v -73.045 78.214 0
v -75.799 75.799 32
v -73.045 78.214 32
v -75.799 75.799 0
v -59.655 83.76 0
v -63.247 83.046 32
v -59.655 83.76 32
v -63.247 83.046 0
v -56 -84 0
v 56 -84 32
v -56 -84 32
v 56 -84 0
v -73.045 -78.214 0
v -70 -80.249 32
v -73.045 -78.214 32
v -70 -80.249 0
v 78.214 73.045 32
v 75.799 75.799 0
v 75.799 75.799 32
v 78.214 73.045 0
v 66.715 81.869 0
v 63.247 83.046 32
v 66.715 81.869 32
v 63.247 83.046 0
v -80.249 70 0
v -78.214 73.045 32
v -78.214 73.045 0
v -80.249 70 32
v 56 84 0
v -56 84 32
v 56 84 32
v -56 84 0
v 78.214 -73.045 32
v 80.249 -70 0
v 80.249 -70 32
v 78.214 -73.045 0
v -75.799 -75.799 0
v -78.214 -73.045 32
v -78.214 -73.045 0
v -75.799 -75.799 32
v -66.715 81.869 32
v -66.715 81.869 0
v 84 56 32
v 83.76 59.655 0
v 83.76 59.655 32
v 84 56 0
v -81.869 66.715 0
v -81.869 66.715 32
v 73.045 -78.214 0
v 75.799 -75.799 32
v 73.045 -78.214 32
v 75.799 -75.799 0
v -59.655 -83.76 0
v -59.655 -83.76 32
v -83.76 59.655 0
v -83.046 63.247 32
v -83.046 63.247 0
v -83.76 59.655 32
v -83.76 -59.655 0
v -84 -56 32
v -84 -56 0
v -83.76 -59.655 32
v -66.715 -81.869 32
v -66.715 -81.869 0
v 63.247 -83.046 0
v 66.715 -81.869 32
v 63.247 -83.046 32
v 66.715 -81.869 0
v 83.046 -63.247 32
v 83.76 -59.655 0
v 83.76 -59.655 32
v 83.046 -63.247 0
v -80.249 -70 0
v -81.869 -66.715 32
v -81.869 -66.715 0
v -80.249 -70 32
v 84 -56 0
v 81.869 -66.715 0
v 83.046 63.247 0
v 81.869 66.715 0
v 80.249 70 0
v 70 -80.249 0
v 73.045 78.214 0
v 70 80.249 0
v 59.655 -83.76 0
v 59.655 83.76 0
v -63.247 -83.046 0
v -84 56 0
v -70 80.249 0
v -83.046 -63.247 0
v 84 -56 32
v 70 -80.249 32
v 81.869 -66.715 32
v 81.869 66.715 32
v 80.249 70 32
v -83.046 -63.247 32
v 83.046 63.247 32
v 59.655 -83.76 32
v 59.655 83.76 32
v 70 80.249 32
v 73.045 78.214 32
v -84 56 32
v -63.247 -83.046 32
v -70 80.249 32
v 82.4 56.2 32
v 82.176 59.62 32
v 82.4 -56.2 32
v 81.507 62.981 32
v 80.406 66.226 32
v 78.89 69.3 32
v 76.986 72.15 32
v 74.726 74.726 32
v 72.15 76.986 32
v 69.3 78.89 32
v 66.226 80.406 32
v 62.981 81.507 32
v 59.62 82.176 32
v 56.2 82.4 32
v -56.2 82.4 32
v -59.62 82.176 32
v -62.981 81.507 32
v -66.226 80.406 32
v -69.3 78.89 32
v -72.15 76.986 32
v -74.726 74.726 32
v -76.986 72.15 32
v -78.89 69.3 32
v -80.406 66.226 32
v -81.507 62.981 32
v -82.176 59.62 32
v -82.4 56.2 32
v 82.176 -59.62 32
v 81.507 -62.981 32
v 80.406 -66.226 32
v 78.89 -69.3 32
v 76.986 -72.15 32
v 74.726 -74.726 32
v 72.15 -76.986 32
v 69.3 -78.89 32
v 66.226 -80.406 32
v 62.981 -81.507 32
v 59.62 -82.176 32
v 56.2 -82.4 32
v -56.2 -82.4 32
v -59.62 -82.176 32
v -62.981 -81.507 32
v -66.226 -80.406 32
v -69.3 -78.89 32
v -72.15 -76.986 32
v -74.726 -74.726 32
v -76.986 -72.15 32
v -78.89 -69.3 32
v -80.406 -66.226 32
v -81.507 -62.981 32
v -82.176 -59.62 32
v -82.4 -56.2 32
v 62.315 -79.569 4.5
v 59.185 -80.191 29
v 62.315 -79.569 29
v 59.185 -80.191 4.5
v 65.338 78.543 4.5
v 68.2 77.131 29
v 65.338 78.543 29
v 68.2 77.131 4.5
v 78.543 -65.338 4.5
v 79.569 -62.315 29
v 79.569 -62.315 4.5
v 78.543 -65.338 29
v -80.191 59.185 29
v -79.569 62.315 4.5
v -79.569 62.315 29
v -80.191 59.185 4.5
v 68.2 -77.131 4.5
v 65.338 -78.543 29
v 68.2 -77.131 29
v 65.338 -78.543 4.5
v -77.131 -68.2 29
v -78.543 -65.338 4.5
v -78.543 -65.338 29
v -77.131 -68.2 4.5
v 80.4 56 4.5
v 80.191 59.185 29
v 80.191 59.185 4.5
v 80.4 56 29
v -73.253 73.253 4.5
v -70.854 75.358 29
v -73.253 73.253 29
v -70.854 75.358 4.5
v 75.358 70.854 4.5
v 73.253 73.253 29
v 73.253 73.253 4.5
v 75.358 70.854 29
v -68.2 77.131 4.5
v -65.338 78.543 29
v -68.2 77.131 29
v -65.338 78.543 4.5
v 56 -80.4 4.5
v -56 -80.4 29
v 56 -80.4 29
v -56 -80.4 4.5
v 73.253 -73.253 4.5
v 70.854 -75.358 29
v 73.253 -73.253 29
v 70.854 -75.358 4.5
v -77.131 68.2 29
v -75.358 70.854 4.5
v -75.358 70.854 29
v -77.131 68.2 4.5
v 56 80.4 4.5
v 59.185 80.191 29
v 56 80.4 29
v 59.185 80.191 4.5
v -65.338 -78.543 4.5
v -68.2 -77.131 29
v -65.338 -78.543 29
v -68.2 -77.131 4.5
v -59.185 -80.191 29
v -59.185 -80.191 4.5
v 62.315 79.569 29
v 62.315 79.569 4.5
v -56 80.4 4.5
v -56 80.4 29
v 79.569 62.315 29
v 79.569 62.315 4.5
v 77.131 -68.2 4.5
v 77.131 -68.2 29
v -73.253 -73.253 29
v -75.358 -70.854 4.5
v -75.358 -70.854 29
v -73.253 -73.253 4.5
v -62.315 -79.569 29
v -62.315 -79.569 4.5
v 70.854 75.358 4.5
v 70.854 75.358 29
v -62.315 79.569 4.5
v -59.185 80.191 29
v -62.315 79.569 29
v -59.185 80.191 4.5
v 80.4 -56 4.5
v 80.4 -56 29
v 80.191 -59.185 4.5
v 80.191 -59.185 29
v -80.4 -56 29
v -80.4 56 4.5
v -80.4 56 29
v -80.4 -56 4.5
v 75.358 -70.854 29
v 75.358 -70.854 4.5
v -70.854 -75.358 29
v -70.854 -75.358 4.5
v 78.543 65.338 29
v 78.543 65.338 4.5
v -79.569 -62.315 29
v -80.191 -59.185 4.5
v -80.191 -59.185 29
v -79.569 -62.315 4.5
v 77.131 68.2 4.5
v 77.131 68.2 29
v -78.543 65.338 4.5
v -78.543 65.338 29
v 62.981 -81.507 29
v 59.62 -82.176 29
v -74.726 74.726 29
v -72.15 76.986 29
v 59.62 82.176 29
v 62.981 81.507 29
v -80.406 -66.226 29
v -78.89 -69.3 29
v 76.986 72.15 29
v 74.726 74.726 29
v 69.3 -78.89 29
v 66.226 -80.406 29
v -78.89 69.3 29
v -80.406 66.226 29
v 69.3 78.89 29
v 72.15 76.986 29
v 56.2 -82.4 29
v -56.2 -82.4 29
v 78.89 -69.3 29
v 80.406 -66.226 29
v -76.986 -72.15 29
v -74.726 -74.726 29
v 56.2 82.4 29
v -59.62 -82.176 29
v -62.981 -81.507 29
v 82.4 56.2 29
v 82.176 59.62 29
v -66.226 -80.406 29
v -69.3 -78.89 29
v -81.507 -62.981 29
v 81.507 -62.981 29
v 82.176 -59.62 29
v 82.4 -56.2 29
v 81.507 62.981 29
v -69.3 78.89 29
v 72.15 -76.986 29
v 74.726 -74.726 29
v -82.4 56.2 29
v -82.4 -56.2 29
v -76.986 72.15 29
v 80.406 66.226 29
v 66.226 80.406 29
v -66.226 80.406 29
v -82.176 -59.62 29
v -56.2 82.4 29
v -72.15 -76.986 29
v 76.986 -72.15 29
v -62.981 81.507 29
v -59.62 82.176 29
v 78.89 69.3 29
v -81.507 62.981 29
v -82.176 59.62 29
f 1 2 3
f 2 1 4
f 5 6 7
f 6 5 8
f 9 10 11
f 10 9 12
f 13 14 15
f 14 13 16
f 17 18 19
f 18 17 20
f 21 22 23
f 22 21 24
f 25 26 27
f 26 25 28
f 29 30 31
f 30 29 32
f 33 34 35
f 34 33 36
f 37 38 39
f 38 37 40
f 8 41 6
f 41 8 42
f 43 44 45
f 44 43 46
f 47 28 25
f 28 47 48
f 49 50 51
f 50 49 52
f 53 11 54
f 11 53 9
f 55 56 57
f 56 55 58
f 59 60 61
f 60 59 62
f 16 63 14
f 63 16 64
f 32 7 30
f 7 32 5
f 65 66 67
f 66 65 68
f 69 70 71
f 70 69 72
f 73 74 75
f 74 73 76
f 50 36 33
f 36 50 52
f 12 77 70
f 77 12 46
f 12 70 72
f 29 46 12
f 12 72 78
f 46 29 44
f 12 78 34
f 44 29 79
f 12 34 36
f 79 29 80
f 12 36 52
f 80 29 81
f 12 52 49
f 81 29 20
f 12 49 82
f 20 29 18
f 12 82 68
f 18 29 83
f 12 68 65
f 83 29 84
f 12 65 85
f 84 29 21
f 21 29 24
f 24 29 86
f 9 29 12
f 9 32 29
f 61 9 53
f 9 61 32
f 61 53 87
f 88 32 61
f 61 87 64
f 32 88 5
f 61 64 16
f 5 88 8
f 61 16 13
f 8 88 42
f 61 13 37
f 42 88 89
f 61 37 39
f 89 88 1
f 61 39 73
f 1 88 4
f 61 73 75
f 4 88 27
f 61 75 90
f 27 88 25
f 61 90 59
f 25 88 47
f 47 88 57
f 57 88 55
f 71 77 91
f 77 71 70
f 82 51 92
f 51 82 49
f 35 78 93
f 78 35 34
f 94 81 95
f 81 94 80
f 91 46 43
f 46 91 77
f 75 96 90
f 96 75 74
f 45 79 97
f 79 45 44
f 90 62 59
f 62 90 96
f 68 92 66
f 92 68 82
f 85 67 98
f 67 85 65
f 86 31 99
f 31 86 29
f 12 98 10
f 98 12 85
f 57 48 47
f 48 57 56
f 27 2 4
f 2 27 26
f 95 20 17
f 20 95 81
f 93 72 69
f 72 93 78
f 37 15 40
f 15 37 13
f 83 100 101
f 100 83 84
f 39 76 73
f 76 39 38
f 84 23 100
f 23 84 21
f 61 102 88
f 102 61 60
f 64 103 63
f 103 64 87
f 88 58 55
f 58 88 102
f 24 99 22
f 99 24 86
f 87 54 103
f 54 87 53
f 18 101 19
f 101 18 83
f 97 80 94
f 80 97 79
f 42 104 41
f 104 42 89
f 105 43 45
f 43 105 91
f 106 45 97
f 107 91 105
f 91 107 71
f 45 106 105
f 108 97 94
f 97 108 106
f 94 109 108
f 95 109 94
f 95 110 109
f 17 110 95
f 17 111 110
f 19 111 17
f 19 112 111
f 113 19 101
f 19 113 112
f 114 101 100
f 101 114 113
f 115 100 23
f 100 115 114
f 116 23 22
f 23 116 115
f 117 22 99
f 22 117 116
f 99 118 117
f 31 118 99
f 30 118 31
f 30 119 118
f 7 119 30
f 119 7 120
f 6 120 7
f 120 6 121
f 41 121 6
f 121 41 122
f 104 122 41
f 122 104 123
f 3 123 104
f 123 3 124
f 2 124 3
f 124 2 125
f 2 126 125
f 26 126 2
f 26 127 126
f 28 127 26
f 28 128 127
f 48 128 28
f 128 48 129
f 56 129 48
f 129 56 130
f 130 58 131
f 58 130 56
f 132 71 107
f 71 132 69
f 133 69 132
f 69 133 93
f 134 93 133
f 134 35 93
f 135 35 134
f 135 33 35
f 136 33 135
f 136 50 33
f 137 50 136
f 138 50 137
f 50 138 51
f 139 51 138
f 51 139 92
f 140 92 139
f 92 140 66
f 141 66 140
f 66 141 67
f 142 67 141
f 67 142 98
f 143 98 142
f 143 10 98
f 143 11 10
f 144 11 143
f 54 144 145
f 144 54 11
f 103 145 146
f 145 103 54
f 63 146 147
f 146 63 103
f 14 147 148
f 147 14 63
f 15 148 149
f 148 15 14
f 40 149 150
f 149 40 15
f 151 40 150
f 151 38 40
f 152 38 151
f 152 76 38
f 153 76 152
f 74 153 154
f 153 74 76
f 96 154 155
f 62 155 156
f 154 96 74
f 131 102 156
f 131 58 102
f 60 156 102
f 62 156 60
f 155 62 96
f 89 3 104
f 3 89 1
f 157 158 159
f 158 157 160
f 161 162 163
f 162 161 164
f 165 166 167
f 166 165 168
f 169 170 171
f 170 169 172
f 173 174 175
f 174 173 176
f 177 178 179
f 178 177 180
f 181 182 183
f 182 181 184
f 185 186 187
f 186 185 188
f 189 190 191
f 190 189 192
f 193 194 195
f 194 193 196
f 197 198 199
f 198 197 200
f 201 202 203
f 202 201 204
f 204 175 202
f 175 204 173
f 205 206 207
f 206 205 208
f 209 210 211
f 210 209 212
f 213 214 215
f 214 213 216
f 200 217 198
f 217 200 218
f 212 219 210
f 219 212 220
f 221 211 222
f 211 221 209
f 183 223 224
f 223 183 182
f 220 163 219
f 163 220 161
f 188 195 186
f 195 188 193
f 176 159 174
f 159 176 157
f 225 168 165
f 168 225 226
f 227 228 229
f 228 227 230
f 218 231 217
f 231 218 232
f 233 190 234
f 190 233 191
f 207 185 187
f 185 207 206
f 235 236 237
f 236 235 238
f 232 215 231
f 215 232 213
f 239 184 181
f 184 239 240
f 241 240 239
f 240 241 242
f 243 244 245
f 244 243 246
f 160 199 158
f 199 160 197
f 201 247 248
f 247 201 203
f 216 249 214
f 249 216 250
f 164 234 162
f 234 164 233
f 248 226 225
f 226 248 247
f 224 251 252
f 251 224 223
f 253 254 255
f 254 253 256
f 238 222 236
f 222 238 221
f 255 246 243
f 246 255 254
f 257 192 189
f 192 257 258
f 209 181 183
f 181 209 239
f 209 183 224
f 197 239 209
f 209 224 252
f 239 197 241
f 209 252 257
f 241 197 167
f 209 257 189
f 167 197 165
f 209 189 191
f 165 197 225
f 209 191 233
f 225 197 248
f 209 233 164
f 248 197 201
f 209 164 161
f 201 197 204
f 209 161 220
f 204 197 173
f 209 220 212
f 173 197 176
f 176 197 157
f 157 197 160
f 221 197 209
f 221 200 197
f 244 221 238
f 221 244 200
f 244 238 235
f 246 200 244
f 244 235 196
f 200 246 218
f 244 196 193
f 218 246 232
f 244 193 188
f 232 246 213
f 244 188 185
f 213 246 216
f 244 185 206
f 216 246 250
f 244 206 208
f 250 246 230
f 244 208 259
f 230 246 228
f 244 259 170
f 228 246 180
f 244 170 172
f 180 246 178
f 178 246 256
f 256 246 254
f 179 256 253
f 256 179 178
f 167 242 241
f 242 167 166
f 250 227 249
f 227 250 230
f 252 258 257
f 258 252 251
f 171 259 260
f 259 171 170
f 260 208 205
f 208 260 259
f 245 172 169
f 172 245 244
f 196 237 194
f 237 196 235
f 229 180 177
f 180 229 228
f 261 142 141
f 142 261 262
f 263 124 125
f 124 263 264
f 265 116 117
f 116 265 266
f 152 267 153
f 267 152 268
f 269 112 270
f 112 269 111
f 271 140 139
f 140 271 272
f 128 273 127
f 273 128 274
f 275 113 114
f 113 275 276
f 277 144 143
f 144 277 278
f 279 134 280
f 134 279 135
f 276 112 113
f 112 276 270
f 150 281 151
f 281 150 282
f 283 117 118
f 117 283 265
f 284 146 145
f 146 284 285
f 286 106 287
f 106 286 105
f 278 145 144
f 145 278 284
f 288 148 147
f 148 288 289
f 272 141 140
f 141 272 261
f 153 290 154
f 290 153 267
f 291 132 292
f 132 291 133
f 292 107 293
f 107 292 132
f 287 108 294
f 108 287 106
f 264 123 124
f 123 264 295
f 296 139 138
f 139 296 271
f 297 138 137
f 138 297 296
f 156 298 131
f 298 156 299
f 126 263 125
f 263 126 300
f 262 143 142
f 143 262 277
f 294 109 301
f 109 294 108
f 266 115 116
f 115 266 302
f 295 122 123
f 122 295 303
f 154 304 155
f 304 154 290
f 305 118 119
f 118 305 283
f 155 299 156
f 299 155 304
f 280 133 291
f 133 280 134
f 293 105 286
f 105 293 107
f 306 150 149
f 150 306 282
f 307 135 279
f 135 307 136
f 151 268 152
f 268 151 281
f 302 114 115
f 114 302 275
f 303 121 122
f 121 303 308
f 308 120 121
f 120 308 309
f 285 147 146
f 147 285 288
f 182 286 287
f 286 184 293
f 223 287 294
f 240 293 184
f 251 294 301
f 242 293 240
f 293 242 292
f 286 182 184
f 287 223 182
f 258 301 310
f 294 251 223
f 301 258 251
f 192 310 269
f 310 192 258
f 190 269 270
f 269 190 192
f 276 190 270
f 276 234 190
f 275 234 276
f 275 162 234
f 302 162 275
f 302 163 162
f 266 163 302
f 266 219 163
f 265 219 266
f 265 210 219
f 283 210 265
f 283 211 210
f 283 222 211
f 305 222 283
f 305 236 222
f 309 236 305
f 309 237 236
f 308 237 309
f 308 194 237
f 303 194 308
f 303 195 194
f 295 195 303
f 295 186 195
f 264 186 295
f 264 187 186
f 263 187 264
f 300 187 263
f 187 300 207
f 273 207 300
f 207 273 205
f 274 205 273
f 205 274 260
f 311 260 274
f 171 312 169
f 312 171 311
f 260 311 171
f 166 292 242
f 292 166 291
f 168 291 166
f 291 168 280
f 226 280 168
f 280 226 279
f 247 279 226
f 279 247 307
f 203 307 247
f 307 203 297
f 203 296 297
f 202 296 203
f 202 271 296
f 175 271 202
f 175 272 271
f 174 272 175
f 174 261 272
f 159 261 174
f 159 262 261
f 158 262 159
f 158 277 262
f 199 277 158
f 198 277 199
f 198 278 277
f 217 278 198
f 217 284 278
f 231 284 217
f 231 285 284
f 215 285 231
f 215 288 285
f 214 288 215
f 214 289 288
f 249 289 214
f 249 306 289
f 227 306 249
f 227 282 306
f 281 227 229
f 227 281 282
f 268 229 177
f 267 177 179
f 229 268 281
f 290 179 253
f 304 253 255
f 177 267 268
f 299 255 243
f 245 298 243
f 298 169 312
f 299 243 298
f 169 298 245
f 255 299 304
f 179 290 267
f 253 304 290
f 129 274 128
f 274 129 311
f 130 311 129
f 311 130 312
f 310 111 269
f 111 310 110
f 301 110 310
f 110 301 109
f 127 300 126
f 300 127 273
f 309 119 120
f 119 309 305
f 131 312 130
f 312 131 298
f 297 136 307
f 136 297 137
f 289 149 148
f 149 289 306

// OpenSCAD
// ============================================================================
// Get Me An Alt — Parametric OpenSCAD Module
// Part: PRT-01 — Acoustic Weighted Base Pan & Vibration Ring (weighted-base-pan)
// Function: Anchors the tower and seals the bottom of the HEPA cartridge.
// Target Bounding Box (mm): [168, 168, 32]
// Print Material: PETG | Min Wall: >= 1.6mm | Tolerance: 0.2mm
// ============================================================================
$fn = 48;
part_width = 168;
part_depth = 168;
part_height = 32;
wall_thickness = 3.6;
floor_thickness = 4.5;
corner_radius = 28;
tolerance = 0.2;
m3_clearance_d = 3.4; // M3 screw clearance hole (3.0mm + 2*0.2mm)

module rounded_rect_prism(w, d, h, r) {
  cr = max(0.5, min(r, min(w, d) / 2 - 0.1));
  linear_extrude(height = h)
    offset(r = cr)
      offset(r = -cr)
        square([w, d], center = true);
}

module part_weighted_base_pan() {
  difference() {
    // Outer watertight vessel with rounded corners
    rounded_rect_prism(part_width, part_depth, part_height, corner_radius);
    // Inner cavity (walls >= 1.6mm, reinforced floor)
    translate([0, 0, floor_thickness])
      rounded_rect_prism(
        part_width - 2 * wall_thickness,
        part_depth - 2 * wall_thickness,
        part_height,
        max(1.0, corner_radius - wall_thickness)
      );
    // Top snap-fit lid rabbet lip (0.2mm clearance)
    translate([0, 0, part_height - 3.0])
      rounded_rect_prism(
        part_width - wall_thickness + 2 * tolerance,
        part_depth - wall_thickness + 2 * tolerance,
        4.0,
        max(1.0, corner_radius - wall_thickness * 0.5)
      );
  }
}

part_weighted_base_pan();
